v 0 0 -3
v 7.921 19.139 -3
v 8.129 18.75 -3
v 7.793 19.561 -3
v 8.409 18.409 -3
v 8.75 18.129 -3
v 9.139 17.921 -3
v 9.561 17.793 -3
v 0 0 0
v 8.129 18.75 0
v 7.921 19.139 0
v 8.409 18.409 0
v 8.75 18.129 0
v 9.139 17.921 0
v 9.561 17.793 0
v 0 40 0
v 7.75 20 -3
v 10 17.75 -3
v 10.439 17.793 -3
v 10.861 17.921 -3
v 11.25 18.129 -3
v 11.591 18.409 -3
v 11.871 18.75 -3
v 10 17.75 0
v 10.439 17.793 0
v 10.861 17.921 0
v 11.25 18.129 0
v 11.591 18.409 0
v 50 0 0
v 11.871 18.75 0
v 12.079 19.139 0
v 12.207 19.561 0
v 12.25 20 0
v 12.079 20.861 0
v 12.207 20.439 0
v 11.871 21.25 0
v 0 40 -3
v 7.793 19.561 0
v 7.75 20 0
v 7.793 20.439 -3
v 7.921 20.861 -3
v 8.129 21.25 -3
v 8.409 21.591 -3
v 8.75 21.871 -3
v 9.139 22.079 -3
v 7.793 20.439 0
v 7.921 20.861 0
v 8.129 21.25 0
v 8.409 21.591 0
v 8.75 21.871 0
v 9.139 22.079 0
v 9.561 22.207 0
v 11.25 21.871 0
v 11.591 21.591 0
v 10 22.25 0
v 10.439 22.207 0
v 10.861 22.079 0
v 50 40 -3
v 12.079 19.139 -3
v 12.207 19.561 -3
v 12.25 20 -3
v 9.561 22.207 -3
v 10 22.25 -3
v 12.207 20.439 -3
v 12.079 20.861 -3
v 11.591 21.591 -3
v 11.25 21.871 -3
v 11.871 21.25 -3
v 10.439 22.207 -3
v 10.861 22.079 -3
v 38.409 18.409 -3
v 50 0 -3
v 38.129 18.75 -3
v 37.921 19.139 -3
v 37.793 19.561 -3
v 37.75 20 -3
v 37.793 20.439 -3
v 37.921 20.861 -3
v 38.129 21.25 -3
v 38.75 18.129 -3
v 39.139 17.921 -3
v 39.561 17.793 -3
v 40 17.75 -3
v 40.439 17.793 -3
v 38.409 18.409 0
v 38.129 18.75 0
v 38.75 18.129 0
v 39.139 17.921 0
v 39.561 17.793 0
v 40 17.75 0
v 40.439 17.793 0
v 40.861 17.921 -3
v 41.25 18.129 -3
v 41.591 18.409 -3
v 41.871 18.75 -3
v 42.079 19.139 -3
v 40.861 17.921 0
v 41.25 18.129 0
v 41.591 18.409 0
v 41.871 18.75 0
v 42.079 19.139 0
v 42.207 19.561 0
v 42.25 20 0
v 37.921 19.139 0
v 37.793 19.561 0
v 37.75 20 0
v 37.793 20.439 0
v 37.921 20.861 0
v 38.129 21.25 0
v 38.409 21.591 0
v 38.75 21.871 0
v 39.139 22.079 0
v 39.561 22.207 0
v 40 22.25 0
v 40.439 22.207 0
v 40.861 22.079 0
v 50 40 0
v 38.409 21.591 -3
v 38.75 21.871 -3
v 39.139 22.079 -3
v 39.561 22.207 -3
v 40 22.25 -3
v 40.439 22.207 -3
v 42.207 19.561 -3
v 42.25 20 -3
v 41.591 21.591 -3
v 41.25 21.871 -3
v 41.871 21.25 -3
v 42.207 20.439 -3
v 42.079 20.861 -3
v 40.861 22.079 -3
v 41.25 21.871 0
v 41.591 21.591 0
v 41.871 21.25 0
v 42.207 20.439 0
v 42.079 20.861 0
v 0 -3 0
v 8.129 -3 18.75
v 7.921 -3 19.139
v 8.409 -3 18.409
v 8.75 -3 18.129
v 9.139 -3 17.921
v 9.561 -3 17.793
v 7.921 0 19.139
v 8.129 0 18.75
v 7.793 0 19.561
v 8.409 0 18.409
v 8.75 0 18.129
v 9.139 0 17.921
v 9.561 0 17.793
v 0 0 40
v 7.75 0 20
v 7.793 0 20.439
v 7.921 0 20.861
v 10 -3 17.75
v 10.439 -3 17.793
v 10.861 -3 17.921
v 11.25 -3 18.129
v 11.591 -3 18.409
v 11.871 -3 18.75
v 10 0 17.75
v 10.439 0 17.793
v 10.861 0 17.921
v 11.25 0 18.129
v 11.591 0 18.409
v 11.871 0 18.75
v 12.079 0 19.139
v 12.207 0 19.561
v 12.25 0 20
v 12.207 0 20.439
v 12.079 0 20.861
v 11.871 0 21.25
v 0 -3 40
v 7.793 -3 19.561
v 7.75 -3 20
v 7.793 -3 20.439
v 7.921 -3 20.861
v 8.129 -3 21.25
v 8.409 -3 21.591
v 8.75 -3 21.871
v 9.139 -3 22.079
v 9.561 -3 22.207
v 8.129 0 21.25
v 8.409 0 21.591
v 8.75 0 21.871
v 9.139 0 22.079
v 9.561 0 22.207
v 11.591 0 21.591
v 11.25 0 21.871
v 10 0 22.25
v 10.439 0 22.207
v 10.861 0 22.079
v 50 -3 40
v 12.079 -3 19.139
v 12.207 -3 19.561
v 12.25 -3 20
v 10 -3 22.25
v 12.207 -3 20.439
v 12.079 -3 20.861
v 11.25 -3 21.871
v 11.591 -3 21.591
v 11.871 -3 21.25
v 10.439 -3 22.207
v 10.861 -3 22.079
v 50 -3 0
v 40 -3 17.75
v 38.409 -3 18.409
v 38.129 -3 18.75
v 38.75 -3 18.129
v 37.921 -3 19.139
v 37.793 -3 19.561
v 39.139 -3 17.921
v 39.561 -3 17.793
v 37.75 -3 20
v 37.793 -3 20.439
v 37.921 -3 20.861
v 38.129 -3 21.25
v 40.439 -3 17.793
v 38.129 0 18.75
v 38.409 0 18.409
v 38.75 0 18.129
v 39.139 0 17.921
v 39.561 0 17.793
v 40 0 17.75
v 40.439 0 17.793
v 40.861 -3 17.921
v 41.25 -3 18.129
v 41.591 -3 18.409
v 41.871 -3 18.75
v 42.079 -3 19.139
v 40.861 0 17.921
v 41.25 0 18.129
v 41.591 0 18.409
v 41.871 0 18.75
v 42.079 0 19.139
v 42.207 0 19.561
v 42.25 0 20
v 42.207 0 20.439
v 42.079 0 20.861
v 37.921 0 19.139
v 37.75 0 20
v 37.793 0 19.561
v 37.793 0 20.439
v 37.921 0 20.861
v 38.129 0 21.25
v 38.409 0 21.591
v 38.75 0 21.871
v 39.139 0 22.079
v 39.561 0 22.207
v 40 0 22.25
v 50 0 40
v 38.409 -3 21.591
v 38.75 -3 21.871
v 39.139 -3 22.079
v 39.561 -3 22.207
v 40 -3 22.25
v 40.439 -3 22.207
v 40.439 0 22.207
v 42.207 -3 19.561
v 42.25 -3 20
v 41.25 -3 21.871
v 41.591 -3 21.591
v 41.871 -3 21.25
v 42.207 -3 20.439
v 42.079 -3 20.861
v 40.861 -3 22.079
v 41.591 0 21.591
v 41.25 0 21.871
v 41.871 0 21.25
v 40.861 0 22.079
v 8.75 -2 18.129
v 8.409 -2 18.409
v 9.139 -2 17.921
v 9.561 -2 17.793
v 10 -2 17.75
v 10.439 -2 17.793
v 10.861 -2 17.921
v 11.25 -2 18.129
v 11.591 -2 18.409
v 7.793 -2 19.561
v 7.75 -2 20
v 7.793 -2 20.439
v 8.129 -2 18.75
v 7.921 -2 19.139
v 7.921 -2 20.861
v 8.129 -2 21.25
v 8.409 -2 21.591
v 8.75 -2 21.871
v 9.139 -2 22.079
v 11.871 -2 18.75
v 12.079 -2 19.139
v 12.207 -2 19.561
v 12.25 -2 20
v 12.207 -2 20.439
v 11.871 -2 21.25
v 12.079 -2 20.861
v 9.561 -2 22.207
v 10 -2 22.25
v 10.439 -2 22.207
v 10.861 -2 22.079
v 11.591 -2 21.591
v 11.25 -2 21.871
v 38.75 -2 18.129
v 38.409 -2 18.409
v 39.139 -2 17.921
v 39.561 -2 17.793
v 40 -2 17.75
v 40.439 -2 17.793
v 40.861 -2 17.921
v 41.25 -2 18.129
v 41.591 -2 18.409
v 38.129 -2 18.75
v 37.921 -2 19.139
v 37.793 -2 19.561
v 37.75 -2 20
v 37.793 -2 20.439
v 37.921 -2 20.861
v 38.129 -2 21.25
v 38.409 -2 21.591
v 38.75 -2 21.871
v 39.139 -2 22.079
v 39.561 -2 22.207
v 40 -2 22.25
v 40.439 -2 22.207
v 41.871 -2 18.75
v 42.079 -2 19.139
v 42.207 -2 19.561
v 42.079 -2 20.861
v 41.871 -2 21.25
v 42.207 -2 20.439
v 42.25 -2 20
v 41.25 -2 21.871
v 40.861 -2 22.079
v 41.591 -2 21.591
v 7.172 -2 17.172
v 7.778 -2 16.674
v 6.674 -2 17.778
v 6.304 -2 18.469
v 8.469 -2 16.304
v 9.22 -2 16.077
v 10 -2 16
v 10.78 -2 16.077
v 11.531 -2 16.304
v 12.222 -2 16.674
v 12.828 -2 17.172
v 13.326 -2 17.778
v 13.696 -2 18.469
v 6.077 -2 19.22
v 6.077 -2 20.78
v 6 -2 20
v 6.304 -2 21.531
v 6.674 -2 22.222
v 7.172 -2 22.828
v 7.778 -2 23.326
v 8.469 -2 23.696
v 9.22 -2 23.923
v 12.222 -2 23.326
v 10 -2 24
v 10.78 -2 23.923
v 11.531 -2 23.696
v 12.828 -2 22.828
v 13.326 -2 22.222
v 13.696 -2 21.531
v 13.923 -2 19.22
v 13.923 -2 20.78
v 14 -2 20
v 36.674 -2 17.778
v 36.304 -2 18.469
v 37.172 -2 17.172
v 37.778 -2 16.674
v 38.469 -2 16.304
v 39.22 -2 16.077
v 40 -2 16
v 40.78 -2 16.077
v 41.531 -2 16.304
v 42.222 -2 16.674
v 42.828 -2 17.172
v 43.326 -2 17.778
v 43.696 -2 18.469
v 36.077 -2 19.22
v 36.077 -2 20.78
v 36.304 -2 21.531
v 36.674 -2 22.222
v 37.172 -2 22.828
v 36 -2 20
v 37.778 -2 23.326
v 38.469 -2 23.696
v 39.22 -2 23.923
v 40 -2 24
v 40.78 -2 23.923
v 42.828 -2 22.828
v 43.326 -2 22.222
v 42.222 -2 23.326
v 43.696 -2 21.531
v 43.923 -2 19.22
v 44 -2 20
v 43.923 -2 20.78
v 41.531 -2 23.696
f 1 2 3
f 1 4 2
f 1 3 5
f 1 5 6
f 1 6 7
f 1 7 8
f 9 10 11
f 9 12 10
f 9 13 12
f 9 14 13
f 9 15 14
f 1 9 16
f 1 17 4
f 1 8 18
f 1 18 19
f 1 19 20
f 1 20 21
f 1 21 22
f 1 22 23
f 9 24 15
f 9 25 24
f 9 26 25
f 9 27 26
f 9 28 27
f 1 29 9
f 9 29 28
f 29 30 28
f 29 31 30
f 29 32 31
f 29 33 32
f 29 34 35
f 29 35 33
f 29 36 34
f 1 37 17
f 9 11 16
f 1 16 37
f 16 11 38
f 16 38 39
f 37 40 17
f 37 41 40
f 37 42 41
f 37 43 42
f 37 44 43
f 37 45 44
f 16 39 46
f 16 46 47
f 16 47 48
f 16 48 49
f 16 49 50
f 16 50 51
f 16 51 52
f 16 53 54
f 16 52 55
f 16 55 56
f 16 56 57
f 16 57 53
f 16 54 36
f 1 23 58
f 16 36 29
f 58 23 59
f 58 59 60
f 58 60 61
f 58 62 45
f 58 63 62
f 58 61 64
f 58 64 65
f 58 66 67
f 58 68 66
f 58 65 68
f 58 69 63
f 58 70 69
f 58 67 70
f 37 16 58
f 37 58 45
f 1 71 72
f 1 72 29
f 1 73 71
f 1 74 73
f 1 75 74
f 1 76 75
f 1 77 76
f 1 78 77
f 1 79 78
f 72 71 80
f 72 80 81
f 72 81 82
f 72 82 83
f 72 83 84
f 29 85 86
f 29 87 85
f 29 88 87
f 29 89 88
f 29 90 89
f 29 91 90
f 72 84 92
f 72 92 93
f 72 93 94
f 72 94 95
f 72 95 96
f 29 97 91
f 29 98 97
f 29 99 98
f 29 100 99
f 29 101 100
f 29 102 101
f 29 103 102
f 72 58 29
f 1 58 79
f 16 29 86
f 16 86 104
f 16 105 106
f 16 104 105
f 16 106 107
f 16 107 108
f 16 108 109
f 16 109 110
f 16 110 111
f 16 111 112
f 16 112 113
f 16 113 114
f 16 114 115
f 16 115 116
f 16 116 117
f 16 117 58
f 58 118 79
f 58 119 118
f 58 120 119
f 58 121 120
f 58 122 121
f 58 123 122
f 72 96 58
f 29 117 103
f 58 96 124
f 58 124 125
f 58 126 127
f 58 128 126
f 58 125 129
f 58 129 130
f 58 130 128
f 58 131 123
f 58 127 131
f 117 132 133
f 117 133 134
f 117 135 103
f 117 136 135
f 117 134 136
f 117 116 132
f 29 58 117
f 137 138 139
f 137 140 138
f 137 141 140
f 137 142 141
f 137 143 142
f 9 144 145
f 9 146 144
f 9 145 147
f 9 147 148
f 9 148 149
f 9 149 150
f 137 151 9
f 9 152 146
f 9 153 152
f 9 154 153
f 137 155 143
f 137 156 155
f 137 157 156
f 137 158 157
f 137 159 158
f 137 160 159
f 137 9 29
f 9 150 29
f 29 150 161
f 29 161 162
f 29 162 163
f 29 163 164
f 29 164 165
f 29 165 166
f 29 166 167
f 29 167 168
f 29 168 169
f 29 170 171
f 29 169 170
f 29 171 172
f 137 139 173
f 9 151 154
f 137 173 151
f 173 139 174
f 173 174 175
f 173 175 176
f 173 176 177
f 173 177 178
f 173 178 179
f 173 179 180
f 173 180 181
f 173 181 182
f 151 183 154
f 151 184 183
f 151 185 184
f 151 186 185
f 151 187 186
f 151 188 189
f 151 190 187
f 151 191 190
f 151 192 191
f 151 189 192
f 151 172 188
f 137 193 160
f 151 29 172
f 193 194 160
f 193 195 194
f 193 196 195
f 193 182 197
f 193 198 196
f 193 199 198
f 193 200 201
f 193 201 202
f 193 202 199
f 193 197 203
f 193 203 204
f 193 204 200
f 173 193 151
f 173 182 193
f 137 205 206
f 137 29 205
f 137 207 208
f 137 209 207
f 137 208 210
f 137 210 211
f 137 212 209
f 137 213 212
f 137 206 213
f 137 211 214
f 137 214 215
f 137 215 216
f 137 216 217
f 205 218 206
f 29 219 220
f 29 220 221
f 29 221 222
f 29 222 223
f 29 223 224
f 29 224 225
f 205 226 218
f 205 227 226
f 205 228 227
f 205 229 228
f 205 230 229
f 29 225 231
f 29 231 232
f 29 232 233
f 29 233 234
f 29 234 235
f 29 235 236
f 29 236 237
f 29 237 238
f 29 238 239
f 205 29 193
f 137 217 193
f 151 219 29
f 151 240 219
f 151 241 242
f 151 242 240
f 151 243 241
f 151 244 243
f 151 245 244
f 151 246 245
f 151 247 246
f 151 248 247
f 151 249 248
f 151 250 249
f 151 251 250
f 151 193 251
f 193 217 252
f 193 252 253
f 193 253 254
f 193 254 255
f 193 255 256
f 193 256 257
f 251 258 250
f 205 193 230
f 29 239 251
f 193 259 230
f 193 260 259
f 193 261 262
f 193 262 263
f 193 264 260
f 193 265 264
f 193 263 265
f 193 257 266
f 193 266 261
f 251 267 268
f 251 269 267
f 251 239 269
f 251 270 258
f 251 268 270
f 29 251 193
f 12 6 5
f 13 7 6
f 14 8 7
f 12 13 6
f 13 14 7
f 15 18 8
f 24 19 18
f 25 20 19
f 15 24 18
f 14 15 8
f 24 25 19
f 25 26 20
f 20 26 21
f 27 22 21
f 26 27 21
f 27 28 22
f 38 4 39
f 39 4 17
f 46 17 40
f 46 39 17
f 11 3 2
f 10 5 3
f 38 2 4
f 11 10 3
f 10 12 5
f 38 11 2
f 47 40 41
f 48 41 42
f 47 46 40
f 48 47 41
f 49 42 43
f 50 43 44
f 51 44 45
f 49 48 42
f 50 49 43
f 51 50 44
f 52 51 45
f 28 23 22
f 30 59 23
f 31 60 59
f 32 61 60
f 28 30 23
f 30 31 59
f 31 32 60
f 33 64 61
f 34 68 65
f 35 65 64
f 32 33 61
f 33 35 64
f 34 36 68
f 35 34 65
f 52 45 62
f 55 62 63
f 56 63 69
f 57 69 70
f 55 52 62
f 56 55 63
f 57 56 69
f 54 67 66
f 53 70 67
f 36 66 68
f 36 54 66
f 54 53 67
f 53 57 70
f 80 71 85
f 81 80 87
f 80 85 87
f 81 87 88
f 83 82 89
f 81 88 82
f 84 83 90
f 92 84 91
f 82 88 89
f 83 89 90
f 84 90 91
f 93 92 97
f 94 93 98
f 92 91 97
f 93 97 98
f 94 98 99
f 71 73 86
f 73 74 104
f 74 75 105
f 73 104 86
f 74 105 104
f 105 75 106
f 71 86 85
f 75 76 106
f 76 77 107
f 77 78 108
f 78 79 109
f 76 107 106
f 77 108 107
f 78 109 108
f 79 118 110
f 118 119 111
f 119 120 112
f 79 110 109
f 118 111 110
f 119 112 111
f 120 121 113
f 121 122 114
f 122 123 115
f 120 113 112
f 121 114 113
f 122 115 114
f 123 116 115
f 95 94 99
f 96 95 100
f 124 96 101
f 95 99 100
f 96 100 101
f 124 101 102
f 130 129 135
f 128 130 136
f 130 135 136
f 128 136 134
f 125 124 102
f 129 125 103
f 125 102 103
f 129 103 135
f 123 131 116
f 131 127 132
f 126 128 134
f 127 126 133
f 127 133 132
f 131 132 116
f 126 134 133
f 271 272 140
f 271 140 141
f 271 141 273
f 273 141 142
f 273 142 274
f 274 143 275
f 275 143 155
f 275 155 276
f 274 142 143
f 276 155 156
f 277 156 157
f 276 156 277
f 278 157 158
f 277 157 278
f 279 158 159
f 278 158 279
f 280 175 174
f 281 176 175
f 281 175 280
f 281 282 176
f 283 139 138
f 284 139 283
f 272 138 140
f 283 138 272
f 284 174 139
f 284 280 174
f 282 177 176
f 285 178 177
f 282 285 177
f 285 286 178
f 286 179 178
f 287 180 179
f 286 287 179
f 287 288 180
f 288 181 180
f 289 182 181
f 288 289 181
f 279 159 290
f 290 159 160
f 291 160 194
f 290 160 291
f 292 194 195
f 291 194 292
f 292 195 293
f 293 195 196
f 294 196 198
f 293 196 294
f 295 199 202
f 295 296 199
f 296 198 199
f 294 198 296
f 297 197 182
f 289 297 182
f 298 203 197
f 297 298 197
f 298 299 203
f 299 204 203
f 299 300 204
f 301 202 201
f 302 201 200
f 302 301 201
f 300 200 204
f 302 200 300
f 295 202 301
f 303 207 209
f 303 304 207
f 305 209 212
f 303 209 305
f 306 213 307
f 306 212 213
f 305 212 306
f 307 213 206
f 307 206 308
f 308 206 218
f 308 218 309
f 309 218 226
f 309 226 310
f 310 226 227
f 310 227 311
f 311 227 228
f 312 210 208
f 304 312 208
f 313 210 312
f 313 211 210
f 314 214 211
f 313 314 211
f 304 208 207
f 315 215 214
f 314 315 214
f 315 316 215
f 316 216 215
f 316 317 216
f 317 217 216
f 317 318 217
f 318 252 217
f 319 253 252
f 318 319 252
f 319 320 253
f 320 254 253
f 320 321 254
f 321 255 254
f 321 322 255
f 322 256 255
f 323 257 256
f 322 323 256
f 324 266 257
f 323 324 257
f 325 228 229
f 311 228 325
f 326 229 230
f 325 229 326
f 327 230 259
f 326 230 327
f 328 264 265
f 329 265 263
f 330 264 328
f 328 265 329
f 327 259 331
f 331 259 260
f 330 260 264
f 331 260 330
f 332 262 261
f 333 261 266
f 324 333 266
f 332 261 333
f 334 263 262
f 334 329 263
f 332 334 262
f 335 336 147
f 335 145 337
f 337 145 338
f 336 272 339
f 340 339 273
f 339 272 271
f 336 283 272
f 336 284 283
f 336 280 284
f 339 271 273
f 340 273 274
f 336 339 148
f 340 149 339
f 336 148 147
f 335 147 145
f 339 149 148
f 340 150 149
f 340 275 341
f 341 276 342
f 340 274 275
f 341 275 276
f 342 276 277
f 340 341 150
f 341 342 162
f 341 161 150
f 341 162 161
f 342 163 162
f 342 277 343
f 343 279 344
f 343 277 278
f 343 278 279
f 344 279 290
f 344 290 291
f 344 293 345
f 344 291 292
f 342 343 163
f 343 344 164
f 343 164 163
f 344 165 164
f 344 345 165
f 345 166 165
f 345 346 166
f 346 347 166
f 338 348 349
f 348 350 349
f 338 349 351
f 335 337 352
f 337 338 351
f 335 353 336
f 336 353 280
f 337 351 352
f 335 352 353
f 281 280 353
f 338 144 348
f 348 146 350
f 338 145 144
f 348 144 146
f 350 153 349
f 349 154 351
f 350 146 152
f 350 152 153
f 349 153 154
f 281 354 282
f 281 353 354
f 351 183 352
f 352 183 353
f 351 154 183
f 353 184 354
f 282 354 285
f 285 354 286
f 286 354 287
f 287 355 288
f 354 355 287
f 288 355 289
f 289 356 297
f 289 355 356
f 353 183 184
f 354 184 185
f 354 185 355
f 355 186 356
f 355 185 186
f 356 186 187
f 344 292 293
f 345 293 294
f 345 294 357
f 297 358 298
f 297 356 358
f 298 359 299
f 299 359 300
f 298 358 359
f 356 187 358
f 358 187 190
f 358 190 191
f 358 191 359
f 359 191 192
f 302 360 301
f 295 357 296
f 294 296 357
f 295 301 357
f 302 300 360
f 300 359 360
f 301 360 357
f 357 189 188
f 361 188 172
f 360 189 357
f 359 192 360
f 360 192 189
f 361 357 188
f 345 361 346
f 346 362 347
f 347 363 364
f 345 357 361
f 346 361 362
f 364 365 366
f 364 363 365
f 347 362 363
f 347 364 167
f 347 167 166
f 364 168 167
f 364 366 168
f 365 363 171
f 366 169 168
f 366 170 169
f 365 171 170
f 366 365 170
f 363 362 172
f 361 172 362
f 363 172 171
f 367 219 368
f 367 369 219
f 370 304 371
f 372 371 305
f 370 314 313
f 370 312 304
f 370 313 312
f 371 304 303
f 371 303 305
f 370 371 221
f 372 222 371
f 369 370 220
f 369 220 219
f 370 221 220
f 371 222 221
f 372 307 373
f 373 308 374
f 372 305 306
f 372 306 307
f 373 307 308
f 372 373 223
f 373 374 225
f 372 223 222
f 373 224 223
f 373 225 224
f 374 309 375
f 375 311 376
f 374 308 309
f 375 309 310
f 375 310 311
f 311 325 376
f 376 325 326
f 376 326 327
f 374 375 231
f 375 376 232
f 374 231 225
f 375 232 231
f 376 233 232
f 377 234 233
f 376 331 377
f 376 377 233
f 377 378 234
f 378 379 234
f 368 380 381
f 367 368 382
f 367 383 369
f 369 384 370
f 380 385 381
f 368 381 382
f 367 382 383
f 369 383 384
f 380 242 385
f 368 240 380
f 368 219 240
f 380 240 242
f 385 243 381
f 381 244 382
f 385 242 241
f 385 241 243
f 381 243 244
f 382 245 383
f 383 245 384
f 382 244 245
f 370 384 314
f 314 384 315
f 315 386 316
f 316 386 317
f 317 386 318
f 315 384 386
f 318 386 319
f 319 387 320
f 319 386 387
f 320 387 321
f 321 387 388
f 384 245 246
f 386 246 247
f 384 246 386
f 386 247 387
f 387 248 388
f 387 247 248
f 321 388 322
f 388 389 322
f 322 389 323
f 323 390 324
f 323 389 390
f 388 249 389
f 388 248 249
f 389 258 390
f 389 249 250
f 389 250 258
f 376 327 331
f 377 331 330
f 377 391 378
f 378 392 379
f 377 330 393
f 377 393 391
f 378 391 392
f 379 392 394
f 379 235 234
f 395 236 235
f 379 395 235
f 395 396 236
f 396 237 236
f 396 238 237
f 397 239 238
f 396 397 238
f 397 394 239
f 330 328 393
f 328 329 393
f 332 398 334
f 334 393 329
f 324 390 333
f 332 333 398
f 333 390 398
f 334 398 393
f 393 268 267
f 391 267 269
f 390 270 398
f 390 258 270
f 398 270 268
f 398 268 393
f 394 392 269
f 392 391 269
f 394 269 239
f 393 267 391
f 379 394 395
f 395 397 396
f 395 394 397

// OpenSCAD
module countersunk_hole() {
    cylinder(d=4.5, h=20, center=true, $fn=32);
    translate([0, 0, -1])
        cylinder(d1=8, d2=4.5, h=2, $fn=32);
}

difference() {
    union() {
        // Horizontal flange: 50mm (X) × 40mm (Y) × 3mm (Z), extending +Y
        translate([0, 0, -3])
            cube([50, 40, 3]);
        // Vertical flange: 50mm (X) × 3mm (Y) × 40mm (Z), extending +Z
        translate([0, -3, 0])
            cube([50, 3, 40]);
    }

    // Holes in horizontal flange
    // Center line X=25, Y=10 from far edge means Y=30, and symmetric X: 25±15? 
    // "面の縁から10mm内側" on center line, "左右対称に2個"
    // Along Y center line at Y=20, placed 10mm from left/right edges: X=10, X=40
    for (x = [10, 40]) {
        translate([x, 20, 0])
            rotate([180, 0, 0])
                translate([0, 0, -0])
                    countersunk_hole_horiz();
    }

    // Holes in vertical flange
    for (x = [10, 40]) {
        translate([x, 0, 20])
            rotate([90, 0, 0])
                countersunk_hole_vert();
    }
}

module countersunk_hole_horiz() {
    // Through hole in Z, countersink on bottom (outside = -Z side)
    translate([0, 0, -3])
        cylinder(d=4.5, h=10, $fn=32);
    // Countersink on outside (bottom, z=-3)
    translate([0, 0, -3])
        cylinder(d1=8, d2=4.5, h=2, $fn=32);
}

module countersunk_hole_vert() {
    // Hole through Y thickness, countersink on outside (-Y side)
    translate([0, 0, -10])
        cylinder(d=4.5, h=20, $fn=32);
    // Countersink on outside (at -Y face, which is the far end in this orientation)
    translate([0, 0, 0])
        cylinder(d1=4.5, d2=8, h=2, $fn=32);
}
